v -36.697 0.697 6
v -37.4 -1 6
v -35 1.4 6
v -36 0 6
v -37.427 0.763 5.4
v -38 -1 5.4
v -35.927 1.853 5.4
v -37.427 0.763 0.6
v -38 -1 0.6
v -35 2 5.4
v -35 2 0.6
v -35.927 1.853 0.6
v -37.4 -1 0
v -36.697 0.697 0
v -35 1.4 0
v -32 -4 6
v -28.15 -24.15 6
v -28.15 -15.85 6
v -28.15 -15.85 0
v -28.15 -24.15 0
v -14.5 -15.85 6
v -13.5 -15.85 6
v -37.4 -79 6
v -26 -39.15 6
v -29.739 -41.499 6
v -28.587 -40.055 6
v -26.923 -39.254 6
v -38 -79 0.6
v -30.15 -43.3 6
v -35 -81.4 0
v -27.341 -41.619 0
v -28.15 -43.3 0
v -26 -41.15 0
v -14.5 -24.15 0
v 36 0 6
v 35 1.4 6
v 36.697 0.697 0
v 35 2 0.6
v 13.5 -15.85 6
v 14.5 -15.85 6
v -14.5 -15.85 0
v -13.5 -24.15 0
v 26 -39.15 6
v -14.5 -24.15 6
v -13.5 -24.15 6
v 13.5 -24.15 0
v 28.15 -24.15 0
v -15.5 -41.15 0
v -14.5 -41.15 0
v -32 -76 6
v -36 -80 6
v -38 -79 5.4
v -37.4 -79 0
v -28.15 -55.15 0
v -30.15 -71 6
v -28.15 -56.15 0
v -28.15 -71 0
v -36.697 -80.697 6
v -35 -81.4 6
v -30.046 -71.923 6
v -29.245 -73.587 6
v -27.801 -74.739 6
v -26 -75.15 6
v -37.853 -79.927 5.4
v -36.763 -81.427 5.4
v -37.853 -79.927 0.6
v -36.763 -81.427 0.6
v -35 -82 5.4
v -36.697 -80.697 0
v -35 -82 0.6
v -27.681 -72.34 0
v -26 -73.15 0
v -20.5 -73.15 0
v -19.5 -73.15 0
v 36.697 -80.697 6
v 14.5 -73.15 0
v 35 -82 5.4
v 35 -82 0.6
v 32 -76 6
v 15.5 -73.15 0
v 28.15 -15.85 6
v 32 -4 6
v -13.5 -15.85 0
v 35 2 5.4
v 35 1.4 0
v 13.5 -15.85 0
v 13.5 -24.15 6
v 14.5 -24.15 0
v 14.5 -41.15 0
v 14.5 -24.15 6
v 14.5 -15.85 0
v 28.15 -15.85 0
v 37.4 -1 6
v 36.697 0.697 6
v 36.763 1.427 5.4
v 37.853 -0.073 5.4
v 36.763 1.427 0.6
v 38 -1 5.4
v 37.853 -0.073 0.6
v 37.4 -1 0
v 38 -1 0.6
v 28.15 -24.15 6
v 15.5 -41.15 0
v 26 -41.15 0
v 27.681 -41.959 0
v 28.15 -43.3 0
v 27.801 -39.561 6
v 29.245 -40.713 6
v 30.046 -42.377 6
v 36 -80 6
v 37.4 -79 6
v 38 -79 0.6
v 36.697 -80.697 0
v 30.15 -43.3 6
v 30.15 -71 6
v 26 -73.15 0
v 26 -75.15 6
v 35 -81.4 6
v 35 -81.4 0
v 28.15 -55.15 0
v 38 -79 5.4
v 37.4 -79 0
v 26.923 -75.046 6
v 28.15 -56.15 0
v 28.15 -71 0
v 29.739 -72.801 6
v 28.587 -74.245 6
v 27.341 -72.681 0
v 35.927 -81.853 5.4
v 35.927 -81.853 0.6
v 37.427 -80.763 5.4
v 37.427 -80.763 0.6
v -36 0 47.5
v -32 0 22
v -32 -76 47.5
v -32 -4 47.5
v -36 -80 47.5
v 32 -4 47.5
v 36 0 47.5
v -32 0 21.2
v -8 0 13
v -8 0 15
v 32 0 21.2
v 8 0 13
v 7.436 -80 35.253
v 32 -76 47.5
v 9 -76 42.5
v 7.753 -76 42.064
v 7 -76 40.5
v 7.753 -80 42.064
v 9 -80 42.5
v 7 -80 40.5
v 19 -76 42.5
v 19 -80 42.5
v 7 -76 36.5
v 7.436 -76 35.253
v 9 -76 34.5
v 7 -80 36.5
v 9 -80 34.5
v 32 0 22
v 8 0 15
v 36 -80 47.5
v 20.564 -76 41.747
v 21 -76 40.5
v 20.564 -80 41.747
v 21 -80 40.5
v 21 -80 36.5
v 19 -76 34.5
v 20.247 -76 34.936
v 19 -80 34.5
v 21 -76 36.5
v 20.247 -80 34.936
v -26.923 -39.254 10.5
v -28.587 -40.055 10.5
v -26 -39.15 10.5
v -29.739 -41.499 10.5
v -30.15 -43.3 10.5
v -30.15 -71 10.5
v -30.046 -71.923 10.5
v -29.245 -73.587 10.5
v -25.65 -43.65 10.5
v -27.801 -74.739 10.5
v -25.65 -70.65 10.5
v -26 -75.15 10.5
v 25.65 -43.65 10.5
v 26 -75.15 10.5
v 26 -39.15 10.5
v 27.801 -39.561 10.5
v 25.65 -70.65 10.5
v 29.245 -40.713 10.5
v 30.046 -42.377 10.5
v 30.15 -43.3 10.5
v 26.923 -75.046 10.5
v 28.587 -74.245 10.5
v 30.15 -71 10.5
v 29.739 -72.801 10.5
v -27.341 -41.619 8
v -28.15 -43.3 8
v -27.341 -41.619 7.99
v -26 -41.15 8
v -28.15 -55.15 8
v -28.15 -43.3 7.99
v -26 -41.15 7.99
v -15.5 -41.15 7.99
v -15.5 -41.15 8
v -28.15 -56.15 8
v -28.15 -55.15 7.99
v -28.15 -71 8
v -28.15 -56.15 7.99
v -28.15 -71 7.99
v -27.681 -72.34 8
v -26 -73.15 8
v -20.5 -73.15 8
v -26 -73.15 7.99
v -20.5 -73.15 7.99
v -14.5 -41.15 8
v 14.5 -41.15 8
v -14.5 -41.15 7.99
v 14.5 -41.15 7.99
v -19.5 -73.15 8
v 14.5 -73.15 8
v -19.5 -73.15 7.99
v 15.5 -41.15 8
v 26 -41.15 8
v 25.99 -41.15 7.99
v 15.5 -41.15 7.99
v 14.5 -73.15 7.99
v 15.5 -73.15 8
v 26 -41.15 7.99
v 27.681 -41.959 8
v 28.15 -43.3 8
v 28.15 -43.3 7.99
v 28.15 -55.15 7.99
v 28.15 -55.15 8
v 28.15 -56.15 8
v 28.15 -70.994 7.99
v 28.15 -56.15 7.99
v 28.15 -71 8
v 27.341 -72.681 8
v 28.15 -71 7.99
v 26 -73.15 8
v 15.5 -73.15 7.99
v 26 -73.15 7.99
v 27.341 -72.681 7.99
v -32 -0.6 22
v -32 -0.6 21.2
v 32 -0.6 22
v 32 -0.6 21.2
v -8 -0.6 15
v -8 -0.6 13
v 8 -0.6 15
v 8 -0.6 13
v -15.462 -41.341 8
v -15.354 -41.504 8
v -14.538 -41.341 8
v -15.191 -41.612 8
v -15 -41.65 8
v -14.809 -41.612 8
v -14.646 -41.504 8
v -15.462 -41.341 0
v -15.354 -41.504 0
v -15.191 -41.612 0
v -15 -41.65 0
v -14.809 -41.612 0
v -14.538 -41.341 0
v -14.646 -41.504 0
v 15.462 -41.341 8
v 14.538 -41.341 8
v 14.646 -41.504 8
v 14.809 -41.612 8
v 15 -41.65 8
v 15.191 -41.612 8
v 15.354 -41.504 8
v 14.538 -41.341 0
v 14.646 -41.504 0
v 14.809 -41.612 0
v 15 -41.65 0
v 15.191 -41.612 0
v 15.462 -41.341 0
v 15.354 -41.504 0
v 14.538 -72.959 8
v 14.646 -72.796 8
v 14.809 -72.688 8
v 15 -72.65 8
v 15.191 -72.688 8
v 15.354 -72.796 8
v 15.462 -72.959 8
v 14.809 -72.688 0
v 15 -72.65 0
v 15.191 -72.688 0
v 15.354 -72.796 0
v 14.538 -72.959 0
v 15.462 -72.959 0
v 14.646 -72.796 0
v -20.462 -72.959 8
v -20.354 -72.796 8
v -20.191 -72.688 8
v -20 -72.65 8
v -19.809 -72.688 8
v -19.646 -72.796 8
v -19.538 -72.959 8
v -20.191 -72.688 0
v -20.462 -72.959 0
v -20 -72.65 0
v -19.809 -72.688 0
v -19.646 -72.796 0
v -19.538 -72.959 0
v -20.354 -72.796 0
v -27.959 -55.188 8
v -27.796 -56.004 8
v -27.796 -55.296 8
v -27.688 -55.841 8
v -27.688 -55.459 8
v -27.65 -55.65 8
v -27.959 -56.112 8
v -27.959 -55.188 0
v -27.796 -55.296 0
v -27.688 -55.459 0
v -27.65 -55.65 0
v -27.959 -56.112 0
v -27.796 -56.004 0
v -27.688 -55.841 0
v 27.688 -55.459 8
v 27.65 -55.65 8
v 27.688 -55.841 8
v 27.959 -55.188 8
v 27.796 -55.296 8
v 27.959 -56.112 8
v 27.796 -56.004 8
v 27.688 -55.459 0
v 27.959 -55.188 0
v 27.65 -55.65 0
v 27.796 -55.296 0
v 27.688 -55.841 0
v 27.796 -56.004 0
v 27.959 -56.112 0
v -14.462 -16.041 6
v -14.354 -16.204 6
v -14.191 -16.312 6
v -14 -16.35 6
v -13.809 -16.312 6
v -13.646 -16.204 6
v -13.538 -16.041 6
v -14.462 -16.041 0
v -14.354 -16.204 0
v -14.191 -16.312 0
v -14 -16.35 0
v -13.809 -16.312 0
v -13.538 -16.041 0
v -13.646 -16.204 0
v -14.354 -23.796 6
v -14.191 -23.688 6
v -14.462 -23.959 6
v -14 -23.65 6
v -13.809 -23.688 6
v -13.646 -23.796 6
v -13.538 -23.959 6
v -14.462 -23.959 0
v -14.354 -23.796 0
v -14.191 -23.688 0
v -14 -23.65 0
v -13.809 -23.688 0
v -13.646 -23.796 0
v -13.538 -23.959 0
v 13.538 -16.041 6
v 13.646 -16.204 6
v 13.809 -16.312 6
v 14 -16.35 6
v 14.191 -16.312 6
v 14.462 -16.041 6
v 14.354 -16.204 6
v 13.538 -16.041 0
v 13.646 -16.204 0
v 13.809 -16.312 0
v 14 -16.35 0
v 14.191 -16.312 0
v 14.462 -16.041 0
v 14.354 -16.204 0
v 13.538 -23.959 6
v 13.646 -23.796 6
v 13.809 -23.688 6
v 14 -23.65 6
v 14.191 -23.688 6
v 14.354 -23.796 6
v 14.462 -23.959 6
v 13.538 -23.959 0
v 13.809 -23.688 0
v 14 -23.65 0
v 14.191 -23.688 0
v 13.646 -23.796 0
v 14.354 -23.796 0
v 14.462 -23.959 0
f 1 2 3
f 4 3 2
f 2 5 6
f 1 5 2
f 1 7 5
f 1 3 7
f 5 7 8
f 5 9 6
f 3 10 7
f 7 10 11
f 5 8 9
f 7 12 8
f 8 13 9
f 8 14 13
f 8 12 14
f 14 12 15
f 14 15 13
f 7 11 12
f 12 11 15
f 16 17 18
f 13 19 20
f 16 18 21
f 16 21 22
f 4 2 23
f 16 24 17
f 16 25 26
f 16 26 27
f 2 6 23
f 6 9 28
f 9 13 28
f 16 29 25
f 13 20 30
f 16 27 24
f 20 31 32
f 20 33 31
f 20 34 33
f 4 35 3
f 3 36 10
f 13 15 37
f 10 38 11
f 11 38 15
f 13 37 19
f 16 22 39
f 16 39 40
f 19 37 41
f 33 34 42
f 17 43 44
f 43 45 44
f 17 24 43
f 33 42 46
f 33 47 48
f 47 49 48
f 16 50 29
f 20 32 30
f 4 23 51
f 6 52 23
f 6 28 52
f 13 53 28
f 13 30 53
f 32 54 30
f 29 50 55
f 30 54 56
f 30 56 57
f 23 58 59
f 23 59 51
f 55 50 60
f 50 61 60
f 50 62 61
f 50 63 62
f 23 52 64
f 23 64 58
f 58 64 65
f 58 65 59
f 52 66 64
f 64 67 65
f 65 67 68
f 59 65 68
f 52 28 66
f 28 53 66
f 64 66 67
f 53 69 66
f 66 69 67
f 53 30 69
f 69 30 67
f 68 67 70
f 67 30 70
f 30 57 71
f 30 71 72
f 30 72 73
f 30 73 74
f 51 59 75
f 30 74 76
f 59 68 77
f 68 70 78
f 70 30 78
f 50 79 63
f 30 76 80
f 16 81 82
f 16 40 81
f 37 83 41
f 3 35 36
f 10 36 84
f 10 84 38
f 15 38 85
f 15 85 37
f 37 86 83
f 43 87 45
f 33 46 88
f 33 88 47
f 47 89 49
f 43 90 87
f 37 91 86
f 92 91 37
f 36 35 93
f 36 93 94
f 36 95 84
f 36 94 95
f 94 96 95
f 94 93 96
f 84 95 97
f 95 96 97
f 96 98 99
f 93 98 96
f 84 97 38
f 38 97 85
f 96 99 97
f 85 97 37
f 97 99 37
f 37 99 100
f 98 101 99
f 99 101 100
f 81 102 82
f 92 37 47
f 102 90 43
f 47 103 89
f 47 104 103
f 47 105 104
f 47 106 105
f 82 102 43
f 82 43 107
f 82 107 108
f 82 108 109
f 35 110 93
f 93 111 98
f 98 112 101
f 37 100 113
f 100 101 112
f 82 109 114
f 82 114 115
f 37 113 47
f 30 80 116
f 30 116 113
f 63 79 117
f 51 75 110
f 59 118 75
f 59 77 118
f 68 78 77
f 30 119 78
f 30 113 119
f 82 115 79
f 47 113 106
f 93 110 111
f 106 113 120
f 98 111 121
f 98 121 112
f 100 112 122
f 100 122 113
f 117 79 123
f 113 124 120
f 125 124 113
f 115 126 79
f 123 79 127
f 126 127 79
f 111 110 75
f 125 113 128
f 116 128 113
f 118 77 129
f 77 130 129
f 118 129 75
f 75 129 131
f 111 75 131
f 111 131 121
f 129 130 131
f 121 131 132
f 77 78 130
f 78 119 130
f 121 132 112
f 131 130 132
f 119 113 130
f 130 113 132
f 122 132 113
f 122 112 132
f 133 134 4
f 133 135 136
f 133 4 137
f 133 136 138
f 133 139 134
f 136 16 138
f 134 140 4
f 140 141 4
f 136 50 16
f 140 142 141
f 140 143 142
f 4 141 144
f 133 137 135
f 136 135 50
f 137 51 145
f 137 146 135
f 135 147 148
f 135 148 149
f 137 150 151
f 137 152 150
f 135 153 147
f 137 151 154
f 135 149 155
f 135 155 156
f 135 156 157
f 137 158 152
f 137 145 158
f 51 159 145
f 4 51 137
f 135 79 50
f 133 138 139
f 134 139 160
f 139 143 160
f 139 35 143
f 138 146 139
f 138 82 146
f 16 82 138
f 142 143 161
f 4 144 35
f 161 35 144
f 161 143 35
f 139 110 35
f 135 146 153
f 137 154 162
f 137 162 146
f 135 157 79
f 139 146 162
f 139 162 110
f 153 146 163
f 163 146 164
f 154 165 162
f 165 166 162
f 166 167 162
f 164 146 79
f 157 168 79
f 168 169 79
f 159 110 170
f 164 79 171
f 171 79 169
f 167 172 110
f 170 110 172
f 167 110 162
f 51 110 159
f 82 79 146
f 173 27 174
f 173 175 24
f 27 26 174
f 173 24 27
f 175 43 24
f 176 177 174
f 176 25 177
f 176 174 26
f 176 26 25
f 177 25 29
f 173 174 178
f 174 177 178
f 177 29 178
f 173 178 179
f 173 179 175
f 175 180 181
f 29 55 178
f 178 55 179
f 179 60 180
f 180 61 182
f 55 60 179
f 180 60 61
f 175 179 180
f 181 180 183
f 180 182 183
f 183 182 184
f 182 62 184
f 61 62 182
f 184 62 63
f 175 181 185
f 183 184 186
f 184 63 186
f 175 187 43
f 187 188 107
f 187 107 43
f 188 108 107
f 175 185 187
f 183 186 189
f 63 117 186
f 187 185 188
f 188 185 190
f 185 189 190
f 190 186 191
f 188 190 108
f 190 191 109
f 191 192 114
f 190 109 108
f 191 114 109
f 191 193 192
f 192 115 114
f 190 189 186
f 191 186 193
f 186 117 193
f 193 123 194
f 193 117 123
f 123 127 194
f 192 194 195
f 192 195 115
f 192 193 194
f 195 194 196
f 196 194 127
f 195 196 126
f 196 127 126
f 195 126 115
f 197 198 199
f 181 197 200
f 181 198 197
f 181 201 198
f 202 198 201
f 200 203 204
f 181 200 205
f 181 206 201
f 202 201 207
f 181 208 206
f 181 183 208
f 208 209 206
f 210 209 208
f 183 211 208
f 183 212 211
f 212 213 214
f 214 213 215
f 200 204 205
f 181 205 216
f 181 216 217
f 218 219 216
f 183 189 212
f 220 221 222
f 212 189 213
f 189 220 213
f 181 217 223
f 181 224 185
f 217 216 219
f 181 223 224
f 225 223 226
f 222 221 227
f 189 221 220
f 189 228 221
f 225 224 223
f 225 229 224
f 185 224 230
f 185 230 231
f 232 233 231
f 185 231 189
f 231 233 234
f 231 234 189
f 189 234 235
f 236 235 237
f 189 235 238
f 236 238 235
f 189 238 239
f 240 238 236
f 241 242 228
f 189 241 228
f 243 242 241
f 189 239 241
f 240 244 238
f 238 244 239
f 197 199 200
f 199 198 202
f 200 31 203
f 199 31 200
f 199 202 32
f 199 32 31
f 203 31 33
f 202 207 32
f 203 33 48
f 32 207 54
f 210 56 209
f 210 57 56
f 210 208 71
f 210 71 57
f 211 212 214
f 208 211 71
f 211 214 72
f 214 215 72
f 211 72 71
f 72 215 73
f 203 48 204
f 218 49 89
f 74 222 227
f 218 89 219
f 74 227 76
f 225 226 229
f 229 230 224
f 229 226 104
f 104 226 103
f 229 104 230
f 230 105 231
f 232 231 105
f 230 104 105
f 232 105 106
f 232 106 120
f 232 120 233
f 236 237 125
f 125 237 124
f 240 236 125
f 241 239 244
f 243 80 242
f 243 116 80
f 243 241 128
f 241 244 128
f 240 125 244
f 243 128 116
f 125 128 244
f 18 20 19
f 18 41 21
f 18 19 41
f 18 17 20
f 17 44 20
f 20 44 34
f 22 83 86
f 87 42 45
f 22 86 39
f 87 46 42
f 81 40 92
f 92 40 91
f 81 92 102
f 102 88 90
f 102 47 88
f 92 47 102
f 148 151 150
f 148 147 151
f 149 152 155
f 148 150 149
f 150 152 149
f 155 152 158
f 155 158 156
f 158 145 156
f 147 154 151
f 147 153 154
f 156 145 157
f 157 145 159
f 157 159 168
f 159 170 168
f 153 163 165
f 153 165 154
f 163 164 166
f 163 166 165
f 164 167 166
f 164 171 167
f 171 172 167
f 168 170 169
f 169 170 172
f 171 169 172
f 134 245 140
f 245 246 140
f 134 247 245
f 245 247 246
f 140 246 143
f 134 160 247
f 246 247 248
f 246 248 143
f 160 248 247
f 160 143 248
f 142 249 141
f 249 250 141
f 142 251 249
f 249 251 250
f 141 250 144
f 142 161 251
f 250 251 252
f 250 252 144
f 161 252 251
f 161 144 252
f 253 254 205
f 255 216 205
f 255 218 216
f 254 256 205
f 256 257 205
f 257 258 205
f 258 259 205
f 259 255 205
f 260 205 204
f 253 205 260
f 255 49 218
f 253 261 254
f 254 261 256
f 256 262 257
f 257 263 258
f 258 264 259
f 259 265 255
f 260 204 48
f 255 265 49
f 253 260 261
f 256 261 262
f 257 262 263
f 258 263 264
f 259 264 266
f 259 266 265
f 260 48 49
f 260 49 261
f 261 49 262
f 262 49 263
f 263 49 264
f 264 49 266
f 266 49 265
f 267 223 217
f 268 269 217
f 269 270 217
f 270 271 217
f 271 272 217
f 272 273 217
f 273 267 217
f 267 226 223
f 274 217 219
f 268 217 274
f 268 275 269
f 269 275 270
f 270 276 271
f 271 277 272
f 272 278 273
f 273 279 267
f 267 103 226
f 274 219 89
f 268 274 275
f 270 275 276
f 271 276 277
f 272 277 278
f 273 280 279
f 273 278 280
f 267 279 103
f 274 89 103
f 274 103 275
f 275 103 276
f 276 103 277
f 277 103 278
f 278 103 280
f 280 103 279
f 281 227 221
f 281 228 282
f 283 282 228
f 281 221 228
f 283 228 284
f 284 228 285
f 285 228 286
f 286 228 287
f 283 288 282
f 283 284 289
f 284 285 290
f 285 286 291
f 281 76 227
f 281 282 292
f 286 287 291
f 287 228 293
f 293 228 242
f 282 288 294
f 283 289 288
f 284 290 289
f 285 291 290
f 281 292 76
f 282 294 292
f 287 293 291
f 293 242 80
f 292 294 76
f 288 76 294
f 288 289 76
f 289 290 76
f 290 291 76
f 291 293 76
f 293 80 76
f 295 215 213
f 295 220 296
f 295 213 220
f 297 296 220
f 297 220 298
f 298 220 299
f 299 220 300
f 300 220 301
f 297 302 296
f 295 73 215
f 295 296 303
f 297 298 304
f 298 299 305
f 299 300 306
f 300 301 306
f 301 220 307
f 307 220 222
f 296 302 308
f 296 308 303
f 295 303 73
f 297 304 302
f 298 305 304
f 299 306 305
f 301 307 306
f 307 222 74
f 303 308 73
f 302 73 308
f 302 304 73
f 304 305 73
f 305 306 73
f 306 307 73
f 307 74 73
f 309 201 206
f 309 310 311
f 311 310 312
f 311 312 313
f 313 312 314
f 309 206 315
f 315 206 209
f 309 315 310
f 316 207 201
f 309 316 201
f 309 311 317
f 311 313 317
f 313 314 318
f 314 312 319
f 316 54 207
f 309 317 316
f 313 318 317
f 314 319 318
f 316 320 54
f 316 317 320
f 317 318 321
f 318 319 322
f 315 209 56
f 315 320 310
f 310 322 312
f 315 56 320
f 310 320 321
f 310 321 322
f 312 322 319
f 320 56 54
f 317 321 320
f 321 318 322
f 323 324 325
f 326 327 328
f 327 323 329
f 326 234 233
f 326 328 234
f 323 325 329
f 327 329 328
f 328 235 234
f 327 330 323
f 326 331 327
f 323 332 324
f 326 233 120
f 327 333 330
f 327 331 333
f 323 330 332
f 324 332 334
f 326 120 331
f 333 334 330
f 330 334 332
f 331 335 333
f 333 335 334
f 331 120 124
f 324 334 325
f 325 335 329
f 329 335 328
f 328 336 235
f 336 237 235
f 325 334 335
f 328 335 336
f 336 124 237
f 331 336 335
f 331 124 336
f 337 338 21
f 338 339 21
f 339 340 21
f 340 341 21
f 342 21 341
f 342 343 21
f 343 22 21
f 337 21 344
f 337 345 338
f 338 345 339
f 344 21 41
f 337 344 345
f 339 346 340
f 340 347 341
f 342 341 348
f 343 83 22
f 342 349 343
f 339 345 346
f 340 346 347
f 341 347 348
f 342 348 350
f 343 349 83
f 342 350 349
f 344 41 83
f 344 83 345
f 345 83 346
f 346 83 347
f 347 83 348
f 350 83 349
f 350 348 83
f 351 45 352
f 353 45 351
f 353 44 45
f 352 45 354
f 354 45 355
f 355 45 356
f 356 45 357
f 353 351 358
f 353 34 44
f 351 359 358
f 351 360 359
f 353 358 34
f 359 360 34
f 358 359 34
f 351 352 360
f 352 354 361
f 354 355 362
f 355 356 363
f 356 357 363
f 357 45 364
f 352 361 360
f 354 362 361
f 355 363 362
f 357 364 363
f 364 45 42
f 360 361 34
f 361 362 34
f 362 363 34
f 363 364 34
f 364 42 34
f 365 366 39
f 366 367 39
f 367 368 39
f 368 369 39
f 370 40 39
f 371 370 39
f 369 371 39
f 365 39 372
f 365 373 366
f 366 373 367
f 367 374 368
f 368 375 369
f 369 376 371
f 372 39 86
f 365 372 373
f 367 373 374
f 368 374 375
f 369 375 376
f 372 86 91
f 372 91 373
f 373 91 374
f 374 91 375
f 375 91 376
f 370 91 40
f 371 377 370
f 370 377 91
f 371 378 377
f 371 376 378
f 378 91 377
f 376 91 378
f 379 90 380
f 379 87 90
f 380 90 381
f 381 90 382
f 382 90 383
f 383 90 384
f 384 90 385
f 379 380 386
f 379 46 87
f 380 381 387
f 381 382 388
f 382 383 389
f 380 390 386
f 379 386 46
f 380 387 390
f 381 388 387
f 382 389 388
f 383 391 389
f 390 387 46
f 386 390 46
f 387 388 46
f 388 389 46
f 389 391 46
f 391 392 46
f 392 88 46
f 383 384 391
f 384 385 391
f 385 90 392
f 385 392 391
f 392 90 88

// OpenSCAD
// file: gh_s37d.scad
// Tiny Engineer parts adapted from the EMAX ES9051 export to fit a GH-S37D servo.
//
// The ES9051 and GH-S37D are close in size. The main difference is the
// mounting-tab span, so each servo pocket's tab slot is lengthened at both
// ends. Everything else is the unchanged ES9051 mesh.
//
// Change the sizes below to match your servo (measure with calipers), then
// run ./build.sh to regenerate the STLs.

// ── GH-S37D sizes (mm) ──────────────────────────────────────────────────────
servo_body_width  = 20;    // body length, tabs not included
servo_mount_width = 5.45;  // how far each tab sticks out from the body (5.2 from listings was too short)
clearance         = 0.3;   // gap per side, same as the original model

// ES9051 values the base meshes were exported with (do not change)
base_body_width   = 20;
base_mount_width  = 4.6;

// ── Tab slots in the ES9051 meshes ─────────────────────────────────────────
// Found by measuring the meshes. All slots run along X.
// [center_x, half_span, [y_min, y_max], [z_min, z_max]]
// The y/z ranges include the open side the servo is dropped in from.
slots = [
    ["Chest", [
        [-0.950, 14.900, [-21.30, -19.60], [16.30, 27.82]],   // arm servo
        [-0.950, 14.900, [19.60, 21.30], [16.30, 27.82]],     // arm servo
        [-0.950, 14.900, [-4.70, 4.70], [19.90, 27.82]]       // neck servo
    ]],
];

new_half_span = servo_body_width / 2 + servo_mount_width + clearance;

function slots_for(part) = [for (s = slots) if (s[0] == part) s[1]][0];

// Cut both ends of each tab slot out to the new span.
// If the new span is shorter, nothing is cut (the servo still fits).
module tab_slot_extensions(part) {
    eps = 0.01;
    for (s = slots_for(part)) {
        cx = s[0]; hs = s[1]; y = s[2]; z = s[3];
        if (new_half_span > hs)
            for (dir = [-1, 1]) {
                x0 = cx + dir * (hs - eps);
                x1 = cx + dir * new_half_span;
                // eps overlap on y/z keeps the cut from sharing faces with
                // the slot walls, which gives clean manifold output
                translate([min(x0, x1), y[0] - eps, z[0] - eps])
                    cube([abs(x1 - x0), y[1] - y[0] + 2 * eps, z[1] - z[0] + 2 * eps]);
            }
    }
}

module adapted_part(part) {
    difference() {
        import(str("base/es9051/", part, ".stl"), convexity = 10);
        tab_slot_extensions(part);
    }
}
// file: torso_body.scad
// Boxy torso, styled like improve_robot.jpg. Used by Torso.scad, the desk
// parts and RobotScene.scad.
//
// The top is the original Chest (with the GH-S37D tab slots from gh_s37d.scad),
// unchanged: the two arm servos lie in it with their shafts out the sides, and
// the neck servo stands in the middle, shaft up. So the arms and the M5Dial
// head mount exactly as before. Under it is a new hollow lower body that
// replaces Belly, BellyJoint, Bell and the Chair. Its open bottom drops into
// the socket in the desk top (see desk_parts.scad), with no screws.
//
// Arm clearance: the one-piece forearms lean in so the hands meet in front of
// the body. So the Chest's side scoops are kept, and the lower body's front is
// set back 3 mm, with a 45-degree slope up to the Chest's front so it
// prints without supports. The arms clear the body from straight up down to about 40
// degrees below horizontal toward the front (the typing pose). They can't hang
// straight down, same as with the original Belly.
//
// Cables: the servo cables go down through the Chest's holes into the lower
// body and out the open bottom into the desk. The Dial's cables run down a
// groove in the back, which carries on into the desk socket.
//
// Torso frame (same as Chest): +x front, +y robot width, +z up. The Chest's
// bottom is at z = 0. The neck servo shaft is at x = neck_shaft_x, y = 0.

include <gh_s37d.scad>

// ── Chest outline (measured from Chest.stl) ────────────────────────────────
chest_half   = [17.35, 28];   // half depth (x), half width (y)
chest_top    = 25.7;
corner_r     = 2;             // vertical edge radius
neck_shaft_x = -6.55;         // neck servo shaft (cable end of the pocket is +x)
arm_shaft    = [4.65, 21];    // arm servo shafts: x, z (out the sides at y = +-28)

// ── Lower body ─────────────────────────────────────────────────────────────
body_h       = 32;            // below the Chest
body_front   = 14.35;         // lower body front face (the Chest's is at 17.35)
step_h       = chest_half[0] - body_front;   // height of the 45-degree slope up to the Chest
seam_z       = -step_h - 1.5; // seam line, just below the slope
body_wall    = 2.5;
roof_apex    = -3;            // top of the hollow inside, a 45-degree gable roof
roof_x       = 3.45;          // ridge line, under the Chest's cable holes
sink         = 8;             // how far the torso sits down into the desk socket
bottom_chamfer = 0.6;

// ── Cable groove for the Dial (back face) ──────────────────────────────────
groove_y     = [-12.5, -6];   // clear of the Chest's screw holes and neck tab slot
groove_d     = 3.5;

torso_bottom = -body_h;

module footprint(inset = 0) {
    offset(r = corner_r - inset) offset(delta = -corner_r)
        square(2 * chest_half, center = true);
}

// lower body outline: the Chest's, with the front set back
module body_footprint(inset = 0) {
    offset(r = corner_r - inset) offset(delta = -corner_r)
        translate([-chest_half[0], -chest_half[1]]) square([chest_half[0] + body_front, 2 * chest_half[1]]);
}

// The Chest's inside holes: cable holes, neck pocket and its cable slot
module inner_holes_2d() {
    intersection() { chest_holes_2d(); square([29, 39.6], center = true); }
}

// The Chest's holes at z = 8 (cable holes, neck pocket, screw holes), plus
// everything outside its outline.
module chest_holes_2d() {
    difference() {
        square(2 * chest_half + [2, 2], center = true);
        projection(cut = true) translate([0, 0, -8]) adapted_part("Chest");
    }
}

// Hollow inside the lower body: vertical walls, then a 45-degree gable roof
// with its ridge along y, so it prints without supports.
module body_cavity() {
    hw = chest_half[1] - body_wall;
    intersection() {
        translate([0, 0, torso_bottom - 1])
            linear_extrude(body_h + roof_apex + 1) body_footprint(body_wall);
        translate([roof_x, 0, roof_apex]) rotate([90, 0, 0])
            linear_extrude(2 * hw + 2, center = true)
                polygon([[-100, -100], [0, 0], [100, -100]]);
    }
}

module seam(z) {
    translate([0, 0, z - 0.4]) linear_extrude(0.8)
        difference() { body_footprint(-1); body_footprint(0.6); }
}

// Details from the picture. Front is +x; the viewer's right is +y.
module details() {
    fx = body_front;
    cx = chest_half[0];
    // seam between the chest and the lower body, and the panel lines
    seam(seam_z);
    translate([fx - 0.6, -21, -21]) cube([1, 31, 0.7]);           // panel bottom
    translate([fx - 0.6, -21, -6]) cube([1, 31, 0.7]);            // panel top
    translate([fx - 0.6, -21, -21]) cube([1, 0.7, 15.7]);         // panel left
    translate([fx - 0.6, 9.3, -21]) cube([1, 0.7, 15.7]);         // panel right
    translate([fx - 0.6, 13, -21]) cube([1, 0.7, 18]);            // long line on the right
    translate([cx - 0.6, 13, 0.5]) cube([1, 0.7, 12]);            // ...carried on up the chest
    // three vent slots, top right of the chest front
    for (i = [0 : 2]) translate([cx - 1, 9, 15 + i * 2.6]) cube([2, 11, 1.2]);
    // speaker grille, bottom right
    for (i = [0 : 3], j = [0 : 2])
        translate([fx + 1, 16 + i * 2.2, -21 + j * 2.2]) rotate([0, -90, 0]) cylinder(d = 1.2, h = 2, $fn = 12);
    // vent slots on both sides of the lower body
    for (s = [-1, 1], i = [0 : 3])
        translate([-8, s * chest_half[1] - 1, -18 + i * 3]) cube([12, 2, 1.2]);
}

// groove down the back, from the top to the bottom
module dial_cable_path() {
    translate([-chest_half[0] - 1, groove_y[0], torso_bottom - 1])
        cube([groove_d + 1, groove_y[1] - groove_y[0], chest_top + body_h + 2]);
}

module torso() {
    difference() {
        union() {
            adapted_part("Chest");
            // lower body
            difference() {
                union() {
                    hull() {
                        translate([0, 0, torso_bottom + bottom_chamfer])
                            linear_extrude(body_h - bottom_chamfer - step_h + 0.01) body_footprint();
                        translate([0, 0, torso_bottom]) linear_extrude(1) body_footprint(bottom_chamfer);
                    }
                    // 45-degree slope up to the Chest's front, instead of a flat step
                    hull() {
                        translate([0, 0, -step_h]) linear_extrude(0.01) body_footprint();
                        translate([0, 0, -0.01]) linear_extrude(0.02) footprint();
                    }
                }
                body_cavity();
                // keep the Chest's holes open down into the cavity
                translate([0, 0, roof_apex - 20]) linear_extrude(-roof_apex + 21)
                    inner_holes_2d();
            }
        }
        details();
        dial_cable_path();
    }
}
// main file
// Desk top and walls, with the socket the torso drops into. See desk_parts.scad.
// Print as exported: upside down, top on the bed. No supports.
include <desk_parts.scad>

translate([0, 0, desk_h]) rotate([180, 0, 0]) desk_box();
